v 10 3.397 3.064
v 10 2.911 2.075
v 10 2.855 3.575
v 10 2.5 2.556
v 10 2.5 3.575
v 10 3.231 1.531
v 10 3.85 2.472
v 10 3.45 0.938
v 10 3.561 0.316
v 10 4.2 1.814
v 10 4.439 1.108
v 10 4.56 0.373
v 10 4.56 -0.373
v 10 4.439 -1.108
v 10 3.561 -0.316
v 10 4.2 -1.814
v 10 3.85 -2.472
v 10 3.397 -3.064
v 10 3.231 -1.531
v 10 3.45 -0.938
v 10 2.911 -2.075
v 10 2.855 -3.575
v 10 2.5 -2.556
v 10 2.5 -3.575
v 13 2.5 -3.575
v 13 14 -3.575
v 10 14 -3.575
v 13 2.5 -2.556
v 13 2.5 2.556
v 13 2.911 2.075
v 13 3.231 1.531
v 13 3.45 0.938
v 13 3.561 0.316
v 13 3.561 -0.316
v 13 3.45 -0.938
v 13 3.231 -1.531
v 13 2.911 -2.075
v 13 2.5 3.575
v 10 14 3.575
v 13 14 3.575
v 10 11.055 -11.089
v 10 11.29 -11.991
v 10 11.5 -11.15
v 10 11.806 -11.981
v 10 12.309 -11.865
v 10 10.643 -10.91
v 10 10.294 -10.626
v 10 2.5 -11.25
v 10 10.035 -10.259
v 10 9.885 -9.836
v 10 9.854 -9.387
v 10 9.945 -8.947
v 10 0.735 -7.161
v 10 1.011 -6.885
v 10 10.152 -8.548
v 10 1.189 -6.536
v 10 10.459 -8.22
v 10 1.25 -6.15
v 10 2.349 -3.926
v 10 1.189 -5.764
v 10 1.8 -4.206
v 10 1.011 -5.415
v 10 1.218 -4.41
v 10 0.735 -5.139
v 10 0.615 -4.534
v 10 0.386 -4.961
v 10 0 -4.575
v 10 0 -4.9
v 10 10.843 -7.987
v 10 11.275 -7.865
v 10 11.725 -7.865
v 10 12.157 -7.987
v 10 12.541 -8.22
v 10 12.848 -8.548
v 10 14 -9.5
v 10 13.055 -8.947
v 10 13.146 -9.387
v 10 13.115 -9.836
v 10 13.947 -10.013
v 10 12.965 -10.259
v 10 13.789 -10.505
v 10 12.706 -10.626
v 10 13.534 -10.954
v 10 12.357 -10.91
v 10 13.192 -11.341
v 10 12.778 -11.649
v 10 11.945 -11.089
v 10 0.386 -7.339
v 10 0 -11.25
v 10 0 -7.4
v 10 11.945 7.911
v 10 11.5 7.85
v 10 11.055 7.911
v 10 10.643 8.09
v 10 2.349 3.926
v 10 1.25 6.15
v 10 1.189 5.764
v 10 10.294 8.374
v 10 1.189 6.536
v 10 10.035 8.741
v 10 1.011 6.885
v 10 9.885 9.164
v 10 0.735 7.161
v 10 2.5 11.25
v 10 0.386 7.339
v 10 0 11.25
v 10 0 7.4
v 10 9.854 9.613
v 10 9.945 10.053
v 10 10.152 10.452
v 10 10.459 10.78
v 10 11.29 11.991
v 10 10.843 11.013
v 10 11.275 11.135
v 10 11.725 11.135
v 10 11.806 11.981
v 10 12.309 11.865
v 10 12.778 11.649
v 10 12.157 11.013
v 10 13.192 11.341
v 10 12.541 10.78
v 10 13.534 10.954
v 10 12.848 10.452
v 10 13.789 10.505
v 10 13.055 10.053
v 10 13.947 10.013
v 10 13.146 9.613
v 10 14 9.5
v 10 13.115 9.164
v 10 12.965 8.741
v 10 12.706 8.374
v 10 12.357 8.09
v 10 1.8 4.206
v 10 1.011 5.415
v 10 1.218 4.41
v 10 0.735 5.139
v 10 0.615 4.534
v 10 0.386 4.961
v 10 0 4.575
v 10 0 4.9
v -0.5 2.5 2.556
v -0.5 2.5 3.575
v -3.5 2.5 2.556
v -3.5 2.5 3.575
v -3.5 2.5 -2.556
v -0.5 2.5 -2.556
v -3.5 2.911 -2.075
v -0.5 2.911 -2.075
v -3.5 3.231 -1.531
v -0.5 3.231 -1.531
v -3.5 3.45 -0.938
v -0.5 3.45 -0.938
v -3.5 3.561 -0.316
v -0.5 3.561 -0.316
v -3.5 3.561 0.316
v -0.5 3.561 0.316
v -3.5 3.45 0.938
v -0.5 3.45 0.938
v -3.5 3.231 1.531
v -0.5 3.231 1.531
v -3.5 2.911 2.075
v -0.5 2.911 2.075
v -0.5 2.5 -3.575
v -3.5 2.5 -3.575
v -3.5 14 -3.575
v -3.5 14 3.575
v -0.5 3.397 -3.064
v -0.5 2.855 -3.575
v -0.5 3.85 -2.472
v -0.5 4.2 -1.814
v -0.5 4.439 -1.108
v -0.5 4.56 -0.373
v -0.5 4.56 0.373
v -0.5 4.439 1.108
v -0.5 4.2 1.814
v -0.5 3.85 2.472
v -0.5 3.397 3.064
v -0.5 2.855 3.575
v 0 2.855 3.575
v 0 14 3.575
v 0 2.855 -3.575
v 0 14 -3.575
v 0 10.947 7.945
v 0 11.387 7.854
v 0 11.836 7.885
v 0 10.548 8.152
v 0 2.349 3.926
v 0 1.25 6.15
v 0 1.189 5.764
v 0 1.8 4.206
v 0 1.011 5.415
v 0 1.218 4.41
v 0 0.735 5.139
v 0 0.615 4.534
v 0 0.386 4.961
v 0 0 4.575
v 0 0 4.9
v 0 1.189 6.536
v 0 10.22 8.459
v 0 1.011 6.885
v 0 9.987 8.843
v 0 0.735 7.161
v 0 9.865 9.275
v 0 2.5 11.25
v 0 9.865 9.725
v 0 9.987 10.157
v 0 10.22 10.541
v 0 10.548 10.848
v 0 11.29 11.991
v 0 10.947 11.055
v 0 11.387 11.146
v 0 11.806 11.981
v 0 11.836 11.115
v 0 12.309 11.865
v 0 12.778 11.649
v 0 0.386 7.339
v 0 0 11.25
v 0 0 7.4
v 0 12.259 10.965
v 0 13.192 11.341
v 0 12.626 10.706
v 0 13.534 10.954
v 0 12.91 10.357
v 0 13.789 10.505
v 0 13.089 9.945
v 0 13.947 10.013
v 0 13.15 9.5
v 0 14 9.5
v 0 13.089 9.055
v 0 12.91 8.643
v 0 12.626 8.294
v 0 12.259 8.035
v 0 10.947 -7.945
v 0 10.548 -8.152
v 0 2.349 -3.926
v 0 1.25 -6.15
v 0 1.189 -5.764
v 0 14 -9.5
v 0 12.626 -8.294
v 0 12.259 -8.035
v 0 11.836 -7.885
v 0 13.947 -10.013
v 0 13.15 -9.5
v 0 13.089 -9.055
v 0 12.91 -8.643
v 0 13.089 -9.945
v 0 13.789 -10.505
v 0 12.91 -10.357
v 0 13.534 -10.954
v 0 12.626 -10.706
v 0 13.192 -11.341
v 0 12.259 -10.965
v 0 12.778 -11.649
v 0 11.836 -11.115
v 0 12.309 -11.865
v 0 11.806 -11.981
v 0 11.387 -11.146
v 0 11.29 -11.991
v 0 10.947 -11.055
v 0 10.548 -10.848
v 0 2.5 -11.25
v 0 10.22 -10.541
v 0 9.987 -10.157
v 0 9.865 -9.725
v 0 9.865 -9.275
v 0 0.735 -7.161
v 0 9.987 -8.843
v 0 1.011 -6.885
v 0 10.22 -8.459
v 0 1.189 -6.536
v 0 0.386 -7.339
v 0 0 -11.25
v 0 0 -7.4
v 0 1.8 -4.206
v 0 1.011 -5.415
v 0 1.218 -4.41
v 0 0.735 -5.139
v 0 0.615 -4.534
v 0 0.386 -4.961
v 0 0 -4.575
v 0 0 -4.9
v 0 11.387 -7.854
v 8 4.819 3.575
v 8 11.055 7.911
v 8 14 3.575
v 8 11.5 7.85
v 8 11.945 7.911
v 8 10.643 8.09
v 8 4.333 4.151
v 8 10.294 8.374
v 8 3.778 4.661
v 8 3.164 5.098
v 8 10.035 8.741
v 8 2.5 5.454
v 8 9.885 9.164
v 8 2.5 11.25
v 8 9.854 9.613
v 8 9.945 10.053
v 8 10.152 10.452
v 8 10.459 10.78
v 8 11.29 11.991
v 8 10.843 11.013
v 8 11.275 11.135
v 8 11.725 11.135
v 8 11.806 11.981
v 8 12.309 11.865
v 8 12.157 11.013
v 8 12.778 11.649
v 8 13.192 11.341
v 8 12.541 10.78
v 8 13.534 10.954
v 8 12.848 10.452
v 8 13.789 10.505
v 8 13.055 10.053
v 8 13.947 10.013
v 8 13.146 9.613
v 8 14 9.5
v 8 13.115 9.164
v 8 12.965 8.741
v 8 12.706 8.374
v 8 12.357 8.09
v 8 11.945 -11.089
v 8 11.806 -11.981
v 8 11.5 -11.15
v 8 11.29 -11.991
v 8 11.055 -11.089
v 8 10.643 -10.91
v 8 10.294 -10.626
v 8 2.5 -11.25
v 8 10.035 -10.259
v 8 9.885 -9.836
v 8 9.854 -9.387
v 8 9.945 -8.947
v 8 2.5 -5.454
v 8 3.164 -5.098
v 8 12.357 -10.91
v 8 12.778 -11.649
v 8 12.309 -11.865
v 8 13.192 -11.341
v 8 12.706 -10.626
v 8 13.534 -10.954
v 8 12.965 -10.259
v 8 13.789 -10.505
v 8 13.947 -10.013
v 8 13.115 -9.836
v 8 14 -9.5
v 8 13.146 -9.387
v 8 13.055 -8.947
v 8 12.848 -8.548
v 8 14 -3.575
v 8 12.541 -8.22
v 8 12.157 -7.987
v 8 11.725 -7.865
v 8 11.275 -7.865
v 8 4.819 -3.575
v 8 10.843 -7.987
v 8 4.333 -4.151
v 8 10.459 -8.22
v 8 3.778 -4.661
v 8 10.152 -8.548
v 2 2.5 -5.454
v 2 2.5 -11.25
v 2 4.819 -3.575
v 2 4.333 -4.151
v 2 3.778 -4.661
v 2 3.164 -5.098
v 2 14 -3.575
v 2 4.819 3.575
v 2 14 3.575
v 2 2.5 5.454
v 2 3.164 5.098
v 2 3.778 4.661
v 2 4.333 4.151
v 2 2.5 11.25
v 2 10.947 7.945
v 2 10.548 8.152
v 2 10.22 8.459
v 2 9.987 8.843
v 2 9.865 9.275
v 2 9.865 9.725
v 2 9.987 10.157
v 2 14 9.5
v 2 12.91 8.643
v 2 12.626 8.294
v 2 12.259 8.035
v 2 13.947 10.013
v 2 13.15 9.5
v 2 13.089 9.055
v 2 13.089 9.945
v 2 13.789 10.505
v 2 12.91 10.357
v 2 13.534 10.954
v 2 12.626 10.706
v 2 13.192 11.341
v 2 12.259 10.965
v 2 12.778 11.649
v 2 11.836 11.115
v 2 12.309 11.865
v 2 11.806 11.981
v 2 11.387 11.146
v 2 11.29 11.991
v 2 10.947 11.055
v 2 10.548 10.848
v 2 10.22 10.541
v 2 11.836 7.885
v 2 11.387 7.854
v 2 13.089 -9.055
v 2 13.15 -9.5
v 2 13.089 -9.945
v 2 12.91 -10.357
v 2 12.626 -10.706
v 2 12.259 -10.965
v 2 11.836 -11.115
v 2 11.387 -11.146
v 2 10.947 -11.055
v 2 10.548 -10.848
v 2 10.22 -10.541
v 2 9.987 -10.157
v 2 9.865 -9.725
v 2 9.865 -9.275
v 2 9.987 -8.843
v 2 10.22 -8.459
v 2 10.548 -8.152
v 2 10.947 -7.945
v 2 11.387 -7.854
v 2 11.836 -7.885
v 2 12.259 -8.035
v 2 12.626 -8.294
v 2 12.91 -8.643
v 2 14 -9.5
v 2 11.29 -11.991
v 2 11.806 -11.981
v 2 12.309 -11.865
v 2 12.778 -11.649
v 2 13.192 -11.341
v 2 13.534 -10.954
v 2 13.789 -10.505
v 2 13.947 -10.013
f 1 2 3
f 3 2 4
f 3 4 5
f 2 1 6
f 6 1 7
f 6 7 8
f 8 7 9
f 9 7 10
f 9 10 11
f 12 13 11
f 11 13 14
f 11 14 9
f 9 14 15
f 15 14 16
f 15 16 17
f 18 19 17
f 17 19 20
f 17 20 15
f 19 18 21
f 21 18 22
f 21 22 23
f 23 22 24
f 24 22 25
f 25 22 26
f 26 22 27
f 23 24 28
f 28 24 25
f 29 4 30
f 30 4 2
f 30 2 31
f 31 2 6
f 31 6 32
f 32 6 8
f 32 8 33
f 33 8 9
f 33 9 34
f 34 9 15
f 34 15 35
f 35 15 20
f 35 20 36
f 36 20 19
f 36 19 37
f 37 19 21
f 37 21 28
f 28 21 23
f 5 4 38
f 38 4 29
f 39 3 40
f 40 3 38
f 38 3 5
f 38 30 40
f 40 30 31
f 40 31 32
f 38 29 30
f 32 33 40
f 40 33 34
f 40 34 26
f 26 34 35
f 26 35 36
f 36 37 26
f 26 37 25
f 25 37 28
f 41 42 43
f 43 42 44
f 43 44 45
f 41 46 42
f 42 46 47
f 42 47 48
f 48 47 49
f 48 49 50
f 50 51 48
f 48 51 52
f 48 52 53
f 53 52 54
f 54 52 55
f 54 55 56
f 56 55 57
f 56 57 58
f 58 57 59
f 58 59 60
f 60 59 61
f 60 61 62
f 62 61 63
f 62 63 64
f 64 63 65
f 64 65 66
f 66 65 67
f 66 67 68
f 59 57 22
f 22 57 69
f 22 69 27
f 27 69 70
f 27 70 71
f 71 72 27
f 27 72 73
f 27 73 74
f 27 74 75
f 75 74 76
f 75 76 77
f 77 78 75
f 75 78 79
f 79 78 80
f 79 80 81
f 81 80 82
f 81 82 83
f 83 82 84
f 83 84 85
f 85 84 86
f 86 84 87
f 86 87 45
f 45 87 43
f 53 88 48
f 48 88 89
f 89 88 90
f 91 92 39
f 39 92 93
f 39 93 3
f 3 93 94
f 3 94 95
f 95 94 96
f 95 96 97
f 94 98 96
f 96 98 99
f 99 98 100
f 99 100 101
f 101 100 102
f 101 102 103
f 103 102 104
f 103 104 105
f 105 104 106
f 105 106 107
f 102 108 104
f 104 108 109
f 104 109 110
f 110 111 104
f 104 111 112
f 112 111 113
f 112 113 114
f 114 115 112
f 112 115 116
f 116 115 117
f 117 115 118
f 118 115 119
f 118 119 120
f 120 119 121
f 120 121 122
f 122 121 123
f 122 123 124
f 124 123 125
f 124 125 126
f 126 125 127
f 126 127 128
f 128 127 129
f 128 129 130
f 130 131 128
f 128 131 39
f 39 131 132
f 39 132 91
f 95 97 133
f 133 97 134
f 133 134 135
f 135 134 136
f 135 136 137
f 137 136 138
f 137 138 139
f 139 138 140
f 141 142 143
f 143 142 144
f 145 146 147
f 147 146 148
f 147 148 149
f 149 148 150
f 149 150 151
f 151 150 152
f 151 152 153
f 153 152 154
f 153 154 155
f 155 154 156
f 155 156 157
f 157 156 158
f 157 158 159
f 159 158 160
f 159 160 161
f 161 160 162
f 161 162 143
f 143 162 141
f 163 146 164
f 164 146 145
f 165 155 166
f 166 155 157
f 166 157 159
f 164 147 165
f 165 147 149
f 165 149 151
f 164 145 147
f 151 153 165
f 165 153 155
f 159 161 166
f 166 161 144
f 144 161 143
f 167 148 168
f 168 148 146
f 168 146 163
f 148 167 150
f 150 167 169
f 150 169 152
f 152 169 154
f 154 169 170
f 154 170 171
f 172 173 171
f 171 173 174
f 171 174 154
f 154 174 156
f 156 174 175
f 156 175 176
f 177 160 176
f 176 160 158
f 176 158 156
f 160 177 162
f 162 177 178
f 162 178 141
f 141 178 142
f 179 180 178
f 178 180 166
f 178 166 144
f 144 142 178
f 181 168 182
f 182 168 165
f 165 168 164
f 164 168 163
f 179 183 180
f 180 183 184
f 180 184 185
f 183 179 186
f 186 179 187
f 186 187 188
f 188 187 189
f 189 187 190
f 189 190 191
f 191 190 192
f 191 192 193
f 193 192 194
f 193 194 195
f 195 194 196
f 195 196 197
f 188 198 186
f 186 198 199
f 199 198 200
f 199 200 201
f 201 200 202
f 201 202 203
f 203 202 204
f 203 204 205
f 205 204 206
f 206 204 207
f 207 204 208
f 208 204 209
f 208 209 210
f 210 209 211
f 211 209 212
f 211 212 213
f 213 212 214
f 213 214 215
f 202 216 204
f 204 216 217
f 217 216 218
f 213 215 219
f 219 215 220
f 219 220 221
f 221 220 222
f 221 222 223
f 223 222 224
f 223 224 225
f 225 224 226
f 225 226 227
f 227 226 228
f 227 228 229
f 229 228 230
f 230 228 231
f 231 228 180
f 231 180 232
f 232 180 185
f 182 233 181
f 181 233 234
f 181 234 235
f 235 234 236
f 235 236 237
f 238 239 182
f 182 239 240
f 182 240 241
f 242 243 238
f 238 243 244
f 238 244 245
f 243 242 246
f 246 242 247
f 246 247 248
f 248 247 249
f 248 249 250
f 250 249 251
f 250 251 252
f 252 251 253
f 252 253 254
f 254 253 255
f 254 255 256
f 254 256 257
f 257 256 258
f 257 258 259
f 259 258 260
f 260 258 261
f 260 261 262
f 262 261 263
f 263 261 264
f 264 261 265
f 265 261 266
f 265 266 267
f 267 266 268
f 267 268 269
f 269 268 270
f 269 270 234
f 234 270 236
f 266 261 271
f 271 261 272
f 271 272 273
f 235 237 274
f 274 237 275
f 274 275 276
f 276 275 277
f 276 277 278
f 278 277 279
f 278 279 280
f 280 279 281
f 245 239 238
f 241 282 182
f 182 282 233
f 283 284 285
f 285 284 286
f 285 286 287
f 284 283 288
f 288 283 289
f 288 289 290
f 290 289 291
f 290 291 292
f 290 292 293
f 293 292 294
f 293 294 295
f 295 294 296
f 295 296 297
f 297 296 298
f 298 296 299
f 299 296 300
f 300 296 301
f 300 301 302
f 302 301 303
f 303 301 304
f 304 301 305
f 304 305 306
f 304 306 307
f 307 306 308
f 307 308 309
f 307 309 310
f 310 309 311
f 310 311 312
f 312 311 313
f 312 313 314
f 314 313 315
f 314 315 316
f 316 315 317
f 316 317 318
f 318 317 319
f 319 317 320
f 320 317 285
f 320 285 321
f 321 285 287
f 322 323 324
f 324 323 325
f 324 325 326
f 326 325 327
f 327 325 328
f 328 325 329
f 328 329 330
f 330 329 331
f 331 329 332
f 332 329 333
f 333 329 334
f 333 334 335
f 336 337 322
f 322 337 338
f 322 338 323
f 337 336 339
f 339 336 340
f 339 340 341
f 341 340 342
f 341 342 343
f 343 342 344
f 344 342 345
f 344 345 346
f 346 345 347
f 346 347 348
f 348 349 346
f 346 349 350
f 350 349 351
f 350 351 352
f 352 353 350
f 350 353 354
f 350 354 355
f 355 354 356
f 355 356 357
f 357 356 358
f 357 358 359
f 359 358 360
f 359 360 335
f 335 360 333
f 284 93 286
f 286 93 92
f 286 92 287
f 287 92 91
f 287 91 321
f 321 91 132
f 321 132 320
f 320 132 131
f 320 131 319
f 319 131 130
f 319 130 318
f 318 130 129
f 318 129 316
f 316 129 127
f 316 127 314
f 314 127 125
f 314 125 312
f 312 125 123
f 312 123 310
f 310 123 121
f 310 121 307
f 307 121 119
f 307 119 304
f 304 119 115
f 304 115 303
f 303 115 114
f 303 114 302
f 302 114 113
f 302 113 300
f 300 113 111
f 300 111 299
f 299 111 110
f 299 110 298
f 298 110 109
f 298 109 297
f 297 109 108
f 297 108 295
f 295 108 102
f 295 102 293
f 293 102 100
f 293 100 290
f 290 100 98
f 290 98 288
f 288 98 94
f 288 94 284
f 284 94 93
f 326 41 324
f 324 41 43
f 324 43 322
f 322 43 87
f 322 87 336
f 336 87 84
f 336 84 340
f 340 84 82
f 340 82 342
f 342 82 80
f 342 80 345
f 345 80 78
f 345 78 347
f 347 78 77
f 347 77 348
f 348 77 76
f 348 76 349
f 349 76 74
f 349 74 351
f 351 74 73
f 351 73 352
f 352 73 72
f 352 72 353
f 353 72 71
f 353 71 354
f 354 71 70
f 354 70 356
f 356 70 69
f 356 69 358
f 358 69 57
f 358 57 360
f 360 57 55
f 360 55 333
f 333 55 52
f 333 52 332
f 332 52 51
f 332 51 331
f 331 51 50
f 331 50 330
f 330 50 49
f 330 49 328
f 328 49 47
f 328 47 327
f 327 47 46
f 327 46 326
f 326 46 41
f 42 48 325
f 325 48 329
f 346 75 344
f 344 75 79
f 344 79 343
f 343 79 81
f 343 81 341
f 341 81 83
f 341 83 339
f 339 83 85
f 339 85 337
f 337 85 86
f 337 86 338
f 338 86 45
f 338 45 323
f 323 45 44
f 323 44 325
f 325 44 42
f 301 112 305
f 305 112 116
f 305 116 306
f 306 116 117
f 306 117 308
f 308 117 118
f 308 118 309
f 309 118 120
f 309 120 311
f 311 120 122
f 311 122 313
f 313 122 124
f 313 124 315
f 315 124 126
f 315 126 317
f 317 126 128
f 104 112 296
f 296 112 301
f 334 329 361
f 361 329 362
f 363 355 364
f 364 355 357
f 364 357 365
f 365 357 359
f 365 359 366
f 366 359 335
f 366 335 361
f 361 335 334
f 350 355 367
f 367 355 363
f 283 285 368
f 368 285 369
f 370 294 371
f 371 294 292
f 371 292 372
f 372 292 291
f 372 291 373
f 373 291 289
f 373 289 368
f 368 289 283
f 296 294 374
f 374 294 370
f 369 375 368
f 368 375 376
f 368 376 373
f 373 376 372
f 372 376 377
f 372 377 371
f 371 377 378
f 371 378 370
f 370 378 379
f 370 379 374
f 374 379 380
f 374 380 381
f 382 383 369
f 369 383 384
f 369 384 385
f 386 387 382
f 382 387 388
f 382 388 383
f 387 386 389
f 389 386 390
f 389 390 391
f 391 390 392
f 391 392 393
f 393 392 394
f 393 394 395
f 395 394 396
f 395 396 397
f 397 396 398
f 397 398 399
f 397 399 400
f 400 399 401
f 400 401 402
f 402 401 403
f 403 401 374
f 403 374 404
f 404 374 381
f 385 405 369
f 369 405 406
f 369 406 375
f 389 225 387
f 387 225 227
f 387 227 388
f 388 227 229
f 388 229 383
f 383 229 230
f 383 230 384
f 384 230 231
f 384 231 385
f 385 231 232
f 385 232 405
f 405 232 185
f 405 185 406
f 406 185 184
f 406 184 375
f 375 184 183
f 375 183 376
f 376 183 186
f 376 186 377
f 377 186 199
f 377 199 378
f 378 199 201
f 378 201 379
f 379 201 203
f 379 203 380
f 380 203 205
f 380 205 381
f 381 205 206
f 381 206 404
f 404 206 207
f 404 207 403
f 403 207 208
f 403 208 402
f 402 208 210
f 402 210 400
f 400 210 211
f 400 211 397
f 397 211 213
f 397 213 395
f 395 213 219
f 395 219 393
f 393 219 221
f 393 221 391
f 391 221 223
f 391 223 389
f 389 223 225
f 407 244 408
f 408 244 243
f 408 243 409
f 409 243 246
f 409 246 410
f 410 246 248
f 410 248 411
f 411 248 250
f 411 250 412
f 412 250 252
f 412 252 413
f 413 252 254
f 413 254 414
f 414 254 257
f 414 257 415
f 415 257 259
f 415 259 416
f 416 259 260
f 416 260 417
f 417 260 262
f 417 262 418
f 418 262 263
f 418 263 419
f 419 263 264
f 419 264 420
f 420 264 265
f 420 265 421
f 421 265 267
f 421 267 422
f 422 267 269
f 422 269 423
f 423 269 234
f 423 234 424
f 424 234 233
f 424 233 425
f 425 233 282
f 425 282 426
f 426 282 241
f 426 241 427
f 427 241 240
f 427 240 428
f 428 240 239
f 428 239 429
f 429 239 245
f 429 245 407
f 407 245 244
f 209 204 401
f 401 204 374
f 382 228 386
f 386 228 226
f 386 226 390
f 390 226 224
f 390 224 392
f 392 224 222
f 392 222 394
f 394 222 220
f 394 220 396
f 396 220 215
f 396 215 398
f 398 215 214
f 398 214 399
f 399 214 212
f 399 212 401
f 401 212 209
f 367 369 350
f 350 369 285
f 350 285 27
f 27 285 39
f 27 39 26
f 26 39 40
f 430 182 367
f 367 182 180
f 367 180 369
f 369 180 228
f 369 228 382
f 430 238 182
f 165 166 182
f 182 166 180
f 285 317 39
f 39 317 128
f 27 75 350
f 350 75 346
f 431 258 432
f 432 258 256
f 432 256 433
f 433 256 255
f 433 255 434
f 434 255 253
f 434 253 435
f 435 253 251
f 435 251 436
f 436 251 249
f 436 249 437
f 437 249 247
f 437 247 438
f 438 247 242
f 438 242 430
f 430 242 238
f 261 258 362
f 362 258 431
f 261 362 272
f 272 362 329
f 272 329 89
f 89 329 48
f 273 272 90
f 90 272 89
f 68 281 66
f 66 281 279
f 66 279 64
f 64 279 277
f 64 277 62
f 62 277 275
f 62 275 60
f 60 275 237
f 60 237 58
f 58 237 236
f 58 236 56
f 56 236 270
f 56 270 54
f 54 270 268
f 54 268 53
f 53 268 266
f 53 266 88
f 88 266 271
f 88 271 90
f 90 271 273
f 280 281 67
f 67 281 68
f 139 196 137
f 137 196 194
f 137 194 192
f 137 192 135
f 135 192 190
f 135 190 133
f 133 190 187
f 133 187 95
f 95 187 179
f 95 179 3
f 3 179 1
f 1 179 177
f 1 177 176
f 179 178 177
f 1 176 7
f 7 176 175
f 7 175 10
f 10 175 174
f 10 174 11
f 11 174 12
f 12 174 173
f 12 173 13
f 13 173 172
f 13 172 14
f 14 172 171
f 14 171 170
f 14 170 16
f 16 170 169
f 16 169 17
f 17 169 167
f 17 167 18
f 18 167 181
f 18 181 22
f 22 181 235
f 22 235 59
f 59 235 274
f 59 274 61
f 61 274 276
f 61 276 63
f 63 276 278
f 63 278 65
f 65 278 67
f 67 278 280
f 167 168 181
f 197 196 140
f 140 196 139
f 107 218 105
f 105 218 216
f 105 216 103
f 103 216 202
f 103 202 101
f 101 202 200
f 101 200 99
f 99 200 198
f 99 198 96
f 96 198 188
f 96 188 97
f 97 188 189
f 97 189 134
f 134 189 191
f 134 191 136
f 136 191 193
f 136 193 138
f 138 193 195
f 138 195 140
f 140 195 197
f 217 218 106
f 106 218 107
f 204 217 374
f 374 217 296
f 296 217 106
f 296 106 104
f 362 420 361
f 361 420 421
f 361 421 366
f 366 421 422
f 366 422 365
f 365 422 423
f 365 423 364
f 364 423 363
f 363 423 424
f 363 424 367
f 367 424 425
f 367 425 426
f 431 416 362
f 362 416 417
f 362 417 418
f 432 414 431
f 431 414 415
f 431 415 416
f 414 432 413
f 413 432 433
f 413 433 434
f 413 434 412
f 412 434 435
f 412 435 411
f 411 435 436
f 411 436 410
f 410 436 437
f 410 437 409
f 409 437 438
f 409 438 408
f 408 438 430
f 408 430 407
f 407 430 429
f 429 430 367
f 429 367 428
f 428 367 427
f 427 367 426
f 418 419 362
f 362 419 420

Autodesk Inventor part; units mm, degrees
ref_plane "YZ Plane" through (0, 0, 0) normal (1, 0, 0) x (0, 1, 0)
ref_plane "XZ Plane" through (0, 0, 0) normal (0, 1, 0) x (-1, 0, 0)
ref_plane "XY Plane" through (0, 0, 0) normal (0, 0, 1) x (1, 0, 0)
sketch "スケッチ1" plane through (0, 0, 0) normal (1, 0, 0) x (0, 1, 0)
  circle A0 centre (0, 0) radius 4.575
  circle A1 centre (0, 0) radius 3.575
  line L0 (0, 0) -> (0, 6)
  line L1 (0, 6) -> (0, -6)
  line L2 (0, 0) -> (11.5, 0)
  line L3 (11.5, 0) -> (11.5, 9.5)
  line L4 (11.5, 9.5) -> (11.5, -9.5)
  circle A2 centre (11.5, 9.5) radius 1.65
  circle A3 centre (11.5, -9.5) radius 1.65
  line L5 (0, 0) -> (0, 11.25)
  line L6 (0, 11.25) -> (0, -11.25)
  line L7 (-2.5, -11.25) -> (2.5, -11.25)
  line L8 (2.5, -11.25) -> (2.5, 11.25)
  line L9 (2.5, 11.25) -> (-2.5, 11.25)
  line L10 (-2.5, 11.25) -> (-2.5, -11.25)
  line L11 (-2.5, -11.25) -> (2.5, 11.25) construction
  line L12 (2.5, -11.25) -> (-2.5, 11.25) construction
  circle A4 centre (11.5, 9.5) radius 2.5
  circle A5 centre (11.5, -9.5) radius 2.5
  line L13 (2.5, 11.25) -> (11.2899, 11.9912)
  line L14 (2.5, -11.25) -> (11.2899, -11.9912)
  line L15 (14, 9.5) -> (14, -9.5)
  line L16 (0, -3.575) -> (14, -3.575)
  line L17 (0, 3.575) -> (14, 3.575)
  circle A6 centre (0, 0) radius 6
  line L18 (0, 0) -> (0, 6.15)
  line L19 (0, 6.15) -> (0, -6.15)
  circle A7 centre (0, 6.15) radius 1.25
  circle A8 centre (0, -6.15) radius 1.25
  point P0 (0, 4.575)
  point P1 (0, -4.575)
  point P2 (2.5, 3.575)
  point P3 (2.5, 2.5555)
  point P4 (2.5, -2.5555)
  point P5 (2.5, -3.575)
  point P6 (0, 7.4)
  point P7 (0, 4.9)
  point P8 (0, -4.9)
  point P9 (0, -7.4)
  point P10 (2.5, 5.4544)
  point P11 (2.5, -5.4544)
  point P12 (4.8186, 3.575)
  point P13 (4.8186, -3.575)
  point P14 (2.8548, 3.575)
  point P15 (2.8548, -3.575)
  dimension "d0" = 9.15
  dimension "d1" = 7.15
  dimension "d2" = 6
  dimension "d3" = 12
  dimension "d6" = 11.5
  dimension "d7" = 9.5
  dimension "d8" = 19
  dimension "d9" = 3.3
  dimension "d10" = 3.3
  dimension "d11" = 11.25
  dimension "d12" = 22.5
  dimension "d13" = 5
  dimension "d14" = 5
  dimension "d15" = 5
  dimension "d28" = 12
  dimension "d29" = 6.15
  dimension "d30" = 12.3
  dimension "d31" = 2.5
  dimension "d32" = 2.5
extrude "押し出し7" add sketch "スケッチ1" along normal blind 2 contours L2 A6 L16 A0 | A0 L17 A6 L2 | A0 L8 A6 L17 | L16 A6 L8 A0 | A6 L17 L3 L2 | L2 L4 L16 A6 | A0 L0 A7 A6 L8 | A6 L8 L13 A4 L3 L17 | L8 A6 A8 L1 A0 | L16 L4 A5 L14 L8 A6 | L3 L17 L15 L16 L4 | A6 A7 L5 L9 L8 | L3 A4 L15 L17 | L8 L7 L6 A8 A6 | L16 L15 A5 L4 | A4 | A5
extrude "押し出し8" add sketch "スケッチ1" along normal blind 10 contours L2 A6 L16 A0 | A0 L17 A6 L2 | A0 L8 A6 L17 | L16 A6 L8 A0 | A6 L17 L3 L2 | L2 L4 L16 A6 | A0 L0 A7 A6 L8 | L8 A6 A8 L1 A0 | L3 L17 L15 L16 L4 | A6 A7 L5 L9 L8 | L8 L7 L6 A8 A6
sketch "スケッチ6" plane through (10, 0, 0) normal (1, 0, 0) x (0, 0, -1)
  line L0 (0, 0) -> (-6.15, 0)
  line L1 (-6.15, 0) -> (6.15, 0)
  circle A0 centre (-6.15, 0) radius 1.25
  circle A1 centre (6.15, 0) radius 1.25
  line L2 (-11.25, 2.5) -> (11.25, 2.5)
  line L3 (11.25, 2.5) -> (11.25, -2.5)
  line L4 (11.25, -2.5) -> (-11.25, -2.5)
  line L5 (-11.25, -2.5) -> (-11.25, 2.5)
  line L6 (-11.25, 2.5) -> (11.25, -2.5) construction
  line L7 (11.25, 2.5) -> (-11.25, -2.5) construction
  line L8 (0, 0) -> (0, 11.5)
  line L9 (0, 11.5) -> (-9.5, 11.5)
  line L10 (-9.5, 11.5) -> (9.5, 11.5)
  circle A2 centre (-9.5, 11.5) radius 1.65
  circle A3 centre (-9.5, 11.5) radius 2.5
  circle A4 centre (9.5, 11.5) radius 1.65
  circle A5 centre (9.5, 11.5) radius 2.5
  circle A6 centre (0, 0) radius 6
  circle A7 centre (0, 0) radius 4.575
  arc A8 (11.9912, 11.2899) -> (9.5, 14) centre (9.5, 11.5) ccw projected
  line L11 (11.25, 2.5) -> (11.9912, 11.2899)
  line L12 (-11.9912, 11.2899) -> (-11.25, 2.5) projected
  line L13 (-11.25, 2.5) -> (-11.9912, 11.2899)
  line L14 (9.5, 14) -> (-9.5, 14) projected
  arc A9 (-9.5, 14) -> (-11.9912, 11.2899) centre (-9.5, 11.5) ccw projected
  line L15 (-9.5, 14) -> (9.5, 14)
  circle A10 centre (0, 0) radius 3.575
  line L16 (-3.575, 14) -> (-3.575, 4.8186) projected
  line L17 (3.575, -14) -> (-3.575, -14)
  line L18 (-3.575, -14) -> (-3.575, 14)
  line L19 (-3.575, 14) -> (3.575, 14)
  line L20 (3.575, 14) -> (3.575, -14)
  line L21 (3.575, -14) -> (-3.575, 14) construction
  line L22 (-3.575, -14) -> (3.575, 14) construction
  point P0 (-5.4544, 2.5)
  point P1 (5.4544, 2.5)
  point P2 (7, 11.5)
  point P3 (-7, 11.5)
  point P4 (-3.575, 11.5)
  point P5 (-3.575, 4.8186)
  point P6 (-3.575, 2.5)
  point P7 (-2.5555, 2.5)
  point P8 (2.5555, 2.5)
  point P9 (3.575, 2.5)
  point P10 (3.575, 11.5)
  dimension "d69" = 12
  dimension "d56" = 6.15
  dimension "d57" = 12.3
  dimension "d58" = 2.5
  dimension "d59" = 2.5
  dimension "d62" = 11.5
  dimension "d63" = 9.5
  dimension "d64" = 19
  dimension "d65" = 3.3
  dimension "d66" = 5
  dimension "d67" = 3.3
  dimension "d68" = 5
  dimension "d70" = 9.15
  dimension "d79" = 7.15
extrude "押し出し9" add sketch "スケッチ6" against normal blind 2 contours L2 L12 A3 L9 L16 A6 | L16 L9 L8 A6 | A6 L20 L10 A5 L11 L2 | A6 L8 L10 L20 | L16 L14 L20 L10 L9 | L9 A3 L14 L16 | L20 L14 A5 L10 | A3 | A5
extrude "押し出し10" add sketch "スケッチ1" against normal blind 0.5 contours L2 A6 L16 A0 | A0 L17 A6 L2 | A6 L17 L3 L2 | L2 L4 L16 A6 | L3 L17 L15 L16 L4
sketch "スケッチ7" plane through (-0.5, 0, 0) normal (-1, 0, 0) x (0, 0, 1)
  circle A0 centre (0, 0) radius 3.575
  line L0 (-9.5, 14) -> (9.5, 14) projected
  line L1 (-3.575, 14) -> (3.575, 14)
  circle A1 centre (0, 0) radius 4.575
  line L2 (-11.25, 0) -> (-11.25, 2.5) projected
  line L3 (11.25, -2.5) -> (-11.25, -2.5)
  line L4 (-11.25, -2.5) -> (-11.25, 2.5)
  line L5 (-11.25, 2.5) -> (11.25, 2.5)
  line L6 (11.25, 2.5) -> (11.25, -2.5)
  line L7 (11.25, -2.5) -> (-11.25, 2.5) construction
  line L8 (-11.25, -2.5) -> (11.25, 2.5) construction
  line L9 (-3.575, 14) -> (-3.575, 0)
  line L10 (3.575, 14) -> (3.575, 0)
  point P0 (-3.575, 2.5)
  point P1 (-2.5555, 2.5)
  point P2 (2.5555, 2.5)
  point P3 (3.575, 2.5)
  dimension "d75" = 7.15
  dimension "d76" = 5
extrude "押し出し11" add sketch "スケッチ7" along normal blind 3 contours A0 L5 L9 A1 L10 | A1 L9 L0 L10
extrude "押し出し12" add sketch "スケッチ6" along normal blind 3 contours L2 L18 A7 L8 A10 | A10 L8 A7 L20 L2 | L18 A6 L8 A7 | A7 L8 A6 L20 | L16 L9 L8 A6 | A6 L8 L10 L20 | L16 L14 L20 L10 L9
properties part number "ikafly3.4c"
